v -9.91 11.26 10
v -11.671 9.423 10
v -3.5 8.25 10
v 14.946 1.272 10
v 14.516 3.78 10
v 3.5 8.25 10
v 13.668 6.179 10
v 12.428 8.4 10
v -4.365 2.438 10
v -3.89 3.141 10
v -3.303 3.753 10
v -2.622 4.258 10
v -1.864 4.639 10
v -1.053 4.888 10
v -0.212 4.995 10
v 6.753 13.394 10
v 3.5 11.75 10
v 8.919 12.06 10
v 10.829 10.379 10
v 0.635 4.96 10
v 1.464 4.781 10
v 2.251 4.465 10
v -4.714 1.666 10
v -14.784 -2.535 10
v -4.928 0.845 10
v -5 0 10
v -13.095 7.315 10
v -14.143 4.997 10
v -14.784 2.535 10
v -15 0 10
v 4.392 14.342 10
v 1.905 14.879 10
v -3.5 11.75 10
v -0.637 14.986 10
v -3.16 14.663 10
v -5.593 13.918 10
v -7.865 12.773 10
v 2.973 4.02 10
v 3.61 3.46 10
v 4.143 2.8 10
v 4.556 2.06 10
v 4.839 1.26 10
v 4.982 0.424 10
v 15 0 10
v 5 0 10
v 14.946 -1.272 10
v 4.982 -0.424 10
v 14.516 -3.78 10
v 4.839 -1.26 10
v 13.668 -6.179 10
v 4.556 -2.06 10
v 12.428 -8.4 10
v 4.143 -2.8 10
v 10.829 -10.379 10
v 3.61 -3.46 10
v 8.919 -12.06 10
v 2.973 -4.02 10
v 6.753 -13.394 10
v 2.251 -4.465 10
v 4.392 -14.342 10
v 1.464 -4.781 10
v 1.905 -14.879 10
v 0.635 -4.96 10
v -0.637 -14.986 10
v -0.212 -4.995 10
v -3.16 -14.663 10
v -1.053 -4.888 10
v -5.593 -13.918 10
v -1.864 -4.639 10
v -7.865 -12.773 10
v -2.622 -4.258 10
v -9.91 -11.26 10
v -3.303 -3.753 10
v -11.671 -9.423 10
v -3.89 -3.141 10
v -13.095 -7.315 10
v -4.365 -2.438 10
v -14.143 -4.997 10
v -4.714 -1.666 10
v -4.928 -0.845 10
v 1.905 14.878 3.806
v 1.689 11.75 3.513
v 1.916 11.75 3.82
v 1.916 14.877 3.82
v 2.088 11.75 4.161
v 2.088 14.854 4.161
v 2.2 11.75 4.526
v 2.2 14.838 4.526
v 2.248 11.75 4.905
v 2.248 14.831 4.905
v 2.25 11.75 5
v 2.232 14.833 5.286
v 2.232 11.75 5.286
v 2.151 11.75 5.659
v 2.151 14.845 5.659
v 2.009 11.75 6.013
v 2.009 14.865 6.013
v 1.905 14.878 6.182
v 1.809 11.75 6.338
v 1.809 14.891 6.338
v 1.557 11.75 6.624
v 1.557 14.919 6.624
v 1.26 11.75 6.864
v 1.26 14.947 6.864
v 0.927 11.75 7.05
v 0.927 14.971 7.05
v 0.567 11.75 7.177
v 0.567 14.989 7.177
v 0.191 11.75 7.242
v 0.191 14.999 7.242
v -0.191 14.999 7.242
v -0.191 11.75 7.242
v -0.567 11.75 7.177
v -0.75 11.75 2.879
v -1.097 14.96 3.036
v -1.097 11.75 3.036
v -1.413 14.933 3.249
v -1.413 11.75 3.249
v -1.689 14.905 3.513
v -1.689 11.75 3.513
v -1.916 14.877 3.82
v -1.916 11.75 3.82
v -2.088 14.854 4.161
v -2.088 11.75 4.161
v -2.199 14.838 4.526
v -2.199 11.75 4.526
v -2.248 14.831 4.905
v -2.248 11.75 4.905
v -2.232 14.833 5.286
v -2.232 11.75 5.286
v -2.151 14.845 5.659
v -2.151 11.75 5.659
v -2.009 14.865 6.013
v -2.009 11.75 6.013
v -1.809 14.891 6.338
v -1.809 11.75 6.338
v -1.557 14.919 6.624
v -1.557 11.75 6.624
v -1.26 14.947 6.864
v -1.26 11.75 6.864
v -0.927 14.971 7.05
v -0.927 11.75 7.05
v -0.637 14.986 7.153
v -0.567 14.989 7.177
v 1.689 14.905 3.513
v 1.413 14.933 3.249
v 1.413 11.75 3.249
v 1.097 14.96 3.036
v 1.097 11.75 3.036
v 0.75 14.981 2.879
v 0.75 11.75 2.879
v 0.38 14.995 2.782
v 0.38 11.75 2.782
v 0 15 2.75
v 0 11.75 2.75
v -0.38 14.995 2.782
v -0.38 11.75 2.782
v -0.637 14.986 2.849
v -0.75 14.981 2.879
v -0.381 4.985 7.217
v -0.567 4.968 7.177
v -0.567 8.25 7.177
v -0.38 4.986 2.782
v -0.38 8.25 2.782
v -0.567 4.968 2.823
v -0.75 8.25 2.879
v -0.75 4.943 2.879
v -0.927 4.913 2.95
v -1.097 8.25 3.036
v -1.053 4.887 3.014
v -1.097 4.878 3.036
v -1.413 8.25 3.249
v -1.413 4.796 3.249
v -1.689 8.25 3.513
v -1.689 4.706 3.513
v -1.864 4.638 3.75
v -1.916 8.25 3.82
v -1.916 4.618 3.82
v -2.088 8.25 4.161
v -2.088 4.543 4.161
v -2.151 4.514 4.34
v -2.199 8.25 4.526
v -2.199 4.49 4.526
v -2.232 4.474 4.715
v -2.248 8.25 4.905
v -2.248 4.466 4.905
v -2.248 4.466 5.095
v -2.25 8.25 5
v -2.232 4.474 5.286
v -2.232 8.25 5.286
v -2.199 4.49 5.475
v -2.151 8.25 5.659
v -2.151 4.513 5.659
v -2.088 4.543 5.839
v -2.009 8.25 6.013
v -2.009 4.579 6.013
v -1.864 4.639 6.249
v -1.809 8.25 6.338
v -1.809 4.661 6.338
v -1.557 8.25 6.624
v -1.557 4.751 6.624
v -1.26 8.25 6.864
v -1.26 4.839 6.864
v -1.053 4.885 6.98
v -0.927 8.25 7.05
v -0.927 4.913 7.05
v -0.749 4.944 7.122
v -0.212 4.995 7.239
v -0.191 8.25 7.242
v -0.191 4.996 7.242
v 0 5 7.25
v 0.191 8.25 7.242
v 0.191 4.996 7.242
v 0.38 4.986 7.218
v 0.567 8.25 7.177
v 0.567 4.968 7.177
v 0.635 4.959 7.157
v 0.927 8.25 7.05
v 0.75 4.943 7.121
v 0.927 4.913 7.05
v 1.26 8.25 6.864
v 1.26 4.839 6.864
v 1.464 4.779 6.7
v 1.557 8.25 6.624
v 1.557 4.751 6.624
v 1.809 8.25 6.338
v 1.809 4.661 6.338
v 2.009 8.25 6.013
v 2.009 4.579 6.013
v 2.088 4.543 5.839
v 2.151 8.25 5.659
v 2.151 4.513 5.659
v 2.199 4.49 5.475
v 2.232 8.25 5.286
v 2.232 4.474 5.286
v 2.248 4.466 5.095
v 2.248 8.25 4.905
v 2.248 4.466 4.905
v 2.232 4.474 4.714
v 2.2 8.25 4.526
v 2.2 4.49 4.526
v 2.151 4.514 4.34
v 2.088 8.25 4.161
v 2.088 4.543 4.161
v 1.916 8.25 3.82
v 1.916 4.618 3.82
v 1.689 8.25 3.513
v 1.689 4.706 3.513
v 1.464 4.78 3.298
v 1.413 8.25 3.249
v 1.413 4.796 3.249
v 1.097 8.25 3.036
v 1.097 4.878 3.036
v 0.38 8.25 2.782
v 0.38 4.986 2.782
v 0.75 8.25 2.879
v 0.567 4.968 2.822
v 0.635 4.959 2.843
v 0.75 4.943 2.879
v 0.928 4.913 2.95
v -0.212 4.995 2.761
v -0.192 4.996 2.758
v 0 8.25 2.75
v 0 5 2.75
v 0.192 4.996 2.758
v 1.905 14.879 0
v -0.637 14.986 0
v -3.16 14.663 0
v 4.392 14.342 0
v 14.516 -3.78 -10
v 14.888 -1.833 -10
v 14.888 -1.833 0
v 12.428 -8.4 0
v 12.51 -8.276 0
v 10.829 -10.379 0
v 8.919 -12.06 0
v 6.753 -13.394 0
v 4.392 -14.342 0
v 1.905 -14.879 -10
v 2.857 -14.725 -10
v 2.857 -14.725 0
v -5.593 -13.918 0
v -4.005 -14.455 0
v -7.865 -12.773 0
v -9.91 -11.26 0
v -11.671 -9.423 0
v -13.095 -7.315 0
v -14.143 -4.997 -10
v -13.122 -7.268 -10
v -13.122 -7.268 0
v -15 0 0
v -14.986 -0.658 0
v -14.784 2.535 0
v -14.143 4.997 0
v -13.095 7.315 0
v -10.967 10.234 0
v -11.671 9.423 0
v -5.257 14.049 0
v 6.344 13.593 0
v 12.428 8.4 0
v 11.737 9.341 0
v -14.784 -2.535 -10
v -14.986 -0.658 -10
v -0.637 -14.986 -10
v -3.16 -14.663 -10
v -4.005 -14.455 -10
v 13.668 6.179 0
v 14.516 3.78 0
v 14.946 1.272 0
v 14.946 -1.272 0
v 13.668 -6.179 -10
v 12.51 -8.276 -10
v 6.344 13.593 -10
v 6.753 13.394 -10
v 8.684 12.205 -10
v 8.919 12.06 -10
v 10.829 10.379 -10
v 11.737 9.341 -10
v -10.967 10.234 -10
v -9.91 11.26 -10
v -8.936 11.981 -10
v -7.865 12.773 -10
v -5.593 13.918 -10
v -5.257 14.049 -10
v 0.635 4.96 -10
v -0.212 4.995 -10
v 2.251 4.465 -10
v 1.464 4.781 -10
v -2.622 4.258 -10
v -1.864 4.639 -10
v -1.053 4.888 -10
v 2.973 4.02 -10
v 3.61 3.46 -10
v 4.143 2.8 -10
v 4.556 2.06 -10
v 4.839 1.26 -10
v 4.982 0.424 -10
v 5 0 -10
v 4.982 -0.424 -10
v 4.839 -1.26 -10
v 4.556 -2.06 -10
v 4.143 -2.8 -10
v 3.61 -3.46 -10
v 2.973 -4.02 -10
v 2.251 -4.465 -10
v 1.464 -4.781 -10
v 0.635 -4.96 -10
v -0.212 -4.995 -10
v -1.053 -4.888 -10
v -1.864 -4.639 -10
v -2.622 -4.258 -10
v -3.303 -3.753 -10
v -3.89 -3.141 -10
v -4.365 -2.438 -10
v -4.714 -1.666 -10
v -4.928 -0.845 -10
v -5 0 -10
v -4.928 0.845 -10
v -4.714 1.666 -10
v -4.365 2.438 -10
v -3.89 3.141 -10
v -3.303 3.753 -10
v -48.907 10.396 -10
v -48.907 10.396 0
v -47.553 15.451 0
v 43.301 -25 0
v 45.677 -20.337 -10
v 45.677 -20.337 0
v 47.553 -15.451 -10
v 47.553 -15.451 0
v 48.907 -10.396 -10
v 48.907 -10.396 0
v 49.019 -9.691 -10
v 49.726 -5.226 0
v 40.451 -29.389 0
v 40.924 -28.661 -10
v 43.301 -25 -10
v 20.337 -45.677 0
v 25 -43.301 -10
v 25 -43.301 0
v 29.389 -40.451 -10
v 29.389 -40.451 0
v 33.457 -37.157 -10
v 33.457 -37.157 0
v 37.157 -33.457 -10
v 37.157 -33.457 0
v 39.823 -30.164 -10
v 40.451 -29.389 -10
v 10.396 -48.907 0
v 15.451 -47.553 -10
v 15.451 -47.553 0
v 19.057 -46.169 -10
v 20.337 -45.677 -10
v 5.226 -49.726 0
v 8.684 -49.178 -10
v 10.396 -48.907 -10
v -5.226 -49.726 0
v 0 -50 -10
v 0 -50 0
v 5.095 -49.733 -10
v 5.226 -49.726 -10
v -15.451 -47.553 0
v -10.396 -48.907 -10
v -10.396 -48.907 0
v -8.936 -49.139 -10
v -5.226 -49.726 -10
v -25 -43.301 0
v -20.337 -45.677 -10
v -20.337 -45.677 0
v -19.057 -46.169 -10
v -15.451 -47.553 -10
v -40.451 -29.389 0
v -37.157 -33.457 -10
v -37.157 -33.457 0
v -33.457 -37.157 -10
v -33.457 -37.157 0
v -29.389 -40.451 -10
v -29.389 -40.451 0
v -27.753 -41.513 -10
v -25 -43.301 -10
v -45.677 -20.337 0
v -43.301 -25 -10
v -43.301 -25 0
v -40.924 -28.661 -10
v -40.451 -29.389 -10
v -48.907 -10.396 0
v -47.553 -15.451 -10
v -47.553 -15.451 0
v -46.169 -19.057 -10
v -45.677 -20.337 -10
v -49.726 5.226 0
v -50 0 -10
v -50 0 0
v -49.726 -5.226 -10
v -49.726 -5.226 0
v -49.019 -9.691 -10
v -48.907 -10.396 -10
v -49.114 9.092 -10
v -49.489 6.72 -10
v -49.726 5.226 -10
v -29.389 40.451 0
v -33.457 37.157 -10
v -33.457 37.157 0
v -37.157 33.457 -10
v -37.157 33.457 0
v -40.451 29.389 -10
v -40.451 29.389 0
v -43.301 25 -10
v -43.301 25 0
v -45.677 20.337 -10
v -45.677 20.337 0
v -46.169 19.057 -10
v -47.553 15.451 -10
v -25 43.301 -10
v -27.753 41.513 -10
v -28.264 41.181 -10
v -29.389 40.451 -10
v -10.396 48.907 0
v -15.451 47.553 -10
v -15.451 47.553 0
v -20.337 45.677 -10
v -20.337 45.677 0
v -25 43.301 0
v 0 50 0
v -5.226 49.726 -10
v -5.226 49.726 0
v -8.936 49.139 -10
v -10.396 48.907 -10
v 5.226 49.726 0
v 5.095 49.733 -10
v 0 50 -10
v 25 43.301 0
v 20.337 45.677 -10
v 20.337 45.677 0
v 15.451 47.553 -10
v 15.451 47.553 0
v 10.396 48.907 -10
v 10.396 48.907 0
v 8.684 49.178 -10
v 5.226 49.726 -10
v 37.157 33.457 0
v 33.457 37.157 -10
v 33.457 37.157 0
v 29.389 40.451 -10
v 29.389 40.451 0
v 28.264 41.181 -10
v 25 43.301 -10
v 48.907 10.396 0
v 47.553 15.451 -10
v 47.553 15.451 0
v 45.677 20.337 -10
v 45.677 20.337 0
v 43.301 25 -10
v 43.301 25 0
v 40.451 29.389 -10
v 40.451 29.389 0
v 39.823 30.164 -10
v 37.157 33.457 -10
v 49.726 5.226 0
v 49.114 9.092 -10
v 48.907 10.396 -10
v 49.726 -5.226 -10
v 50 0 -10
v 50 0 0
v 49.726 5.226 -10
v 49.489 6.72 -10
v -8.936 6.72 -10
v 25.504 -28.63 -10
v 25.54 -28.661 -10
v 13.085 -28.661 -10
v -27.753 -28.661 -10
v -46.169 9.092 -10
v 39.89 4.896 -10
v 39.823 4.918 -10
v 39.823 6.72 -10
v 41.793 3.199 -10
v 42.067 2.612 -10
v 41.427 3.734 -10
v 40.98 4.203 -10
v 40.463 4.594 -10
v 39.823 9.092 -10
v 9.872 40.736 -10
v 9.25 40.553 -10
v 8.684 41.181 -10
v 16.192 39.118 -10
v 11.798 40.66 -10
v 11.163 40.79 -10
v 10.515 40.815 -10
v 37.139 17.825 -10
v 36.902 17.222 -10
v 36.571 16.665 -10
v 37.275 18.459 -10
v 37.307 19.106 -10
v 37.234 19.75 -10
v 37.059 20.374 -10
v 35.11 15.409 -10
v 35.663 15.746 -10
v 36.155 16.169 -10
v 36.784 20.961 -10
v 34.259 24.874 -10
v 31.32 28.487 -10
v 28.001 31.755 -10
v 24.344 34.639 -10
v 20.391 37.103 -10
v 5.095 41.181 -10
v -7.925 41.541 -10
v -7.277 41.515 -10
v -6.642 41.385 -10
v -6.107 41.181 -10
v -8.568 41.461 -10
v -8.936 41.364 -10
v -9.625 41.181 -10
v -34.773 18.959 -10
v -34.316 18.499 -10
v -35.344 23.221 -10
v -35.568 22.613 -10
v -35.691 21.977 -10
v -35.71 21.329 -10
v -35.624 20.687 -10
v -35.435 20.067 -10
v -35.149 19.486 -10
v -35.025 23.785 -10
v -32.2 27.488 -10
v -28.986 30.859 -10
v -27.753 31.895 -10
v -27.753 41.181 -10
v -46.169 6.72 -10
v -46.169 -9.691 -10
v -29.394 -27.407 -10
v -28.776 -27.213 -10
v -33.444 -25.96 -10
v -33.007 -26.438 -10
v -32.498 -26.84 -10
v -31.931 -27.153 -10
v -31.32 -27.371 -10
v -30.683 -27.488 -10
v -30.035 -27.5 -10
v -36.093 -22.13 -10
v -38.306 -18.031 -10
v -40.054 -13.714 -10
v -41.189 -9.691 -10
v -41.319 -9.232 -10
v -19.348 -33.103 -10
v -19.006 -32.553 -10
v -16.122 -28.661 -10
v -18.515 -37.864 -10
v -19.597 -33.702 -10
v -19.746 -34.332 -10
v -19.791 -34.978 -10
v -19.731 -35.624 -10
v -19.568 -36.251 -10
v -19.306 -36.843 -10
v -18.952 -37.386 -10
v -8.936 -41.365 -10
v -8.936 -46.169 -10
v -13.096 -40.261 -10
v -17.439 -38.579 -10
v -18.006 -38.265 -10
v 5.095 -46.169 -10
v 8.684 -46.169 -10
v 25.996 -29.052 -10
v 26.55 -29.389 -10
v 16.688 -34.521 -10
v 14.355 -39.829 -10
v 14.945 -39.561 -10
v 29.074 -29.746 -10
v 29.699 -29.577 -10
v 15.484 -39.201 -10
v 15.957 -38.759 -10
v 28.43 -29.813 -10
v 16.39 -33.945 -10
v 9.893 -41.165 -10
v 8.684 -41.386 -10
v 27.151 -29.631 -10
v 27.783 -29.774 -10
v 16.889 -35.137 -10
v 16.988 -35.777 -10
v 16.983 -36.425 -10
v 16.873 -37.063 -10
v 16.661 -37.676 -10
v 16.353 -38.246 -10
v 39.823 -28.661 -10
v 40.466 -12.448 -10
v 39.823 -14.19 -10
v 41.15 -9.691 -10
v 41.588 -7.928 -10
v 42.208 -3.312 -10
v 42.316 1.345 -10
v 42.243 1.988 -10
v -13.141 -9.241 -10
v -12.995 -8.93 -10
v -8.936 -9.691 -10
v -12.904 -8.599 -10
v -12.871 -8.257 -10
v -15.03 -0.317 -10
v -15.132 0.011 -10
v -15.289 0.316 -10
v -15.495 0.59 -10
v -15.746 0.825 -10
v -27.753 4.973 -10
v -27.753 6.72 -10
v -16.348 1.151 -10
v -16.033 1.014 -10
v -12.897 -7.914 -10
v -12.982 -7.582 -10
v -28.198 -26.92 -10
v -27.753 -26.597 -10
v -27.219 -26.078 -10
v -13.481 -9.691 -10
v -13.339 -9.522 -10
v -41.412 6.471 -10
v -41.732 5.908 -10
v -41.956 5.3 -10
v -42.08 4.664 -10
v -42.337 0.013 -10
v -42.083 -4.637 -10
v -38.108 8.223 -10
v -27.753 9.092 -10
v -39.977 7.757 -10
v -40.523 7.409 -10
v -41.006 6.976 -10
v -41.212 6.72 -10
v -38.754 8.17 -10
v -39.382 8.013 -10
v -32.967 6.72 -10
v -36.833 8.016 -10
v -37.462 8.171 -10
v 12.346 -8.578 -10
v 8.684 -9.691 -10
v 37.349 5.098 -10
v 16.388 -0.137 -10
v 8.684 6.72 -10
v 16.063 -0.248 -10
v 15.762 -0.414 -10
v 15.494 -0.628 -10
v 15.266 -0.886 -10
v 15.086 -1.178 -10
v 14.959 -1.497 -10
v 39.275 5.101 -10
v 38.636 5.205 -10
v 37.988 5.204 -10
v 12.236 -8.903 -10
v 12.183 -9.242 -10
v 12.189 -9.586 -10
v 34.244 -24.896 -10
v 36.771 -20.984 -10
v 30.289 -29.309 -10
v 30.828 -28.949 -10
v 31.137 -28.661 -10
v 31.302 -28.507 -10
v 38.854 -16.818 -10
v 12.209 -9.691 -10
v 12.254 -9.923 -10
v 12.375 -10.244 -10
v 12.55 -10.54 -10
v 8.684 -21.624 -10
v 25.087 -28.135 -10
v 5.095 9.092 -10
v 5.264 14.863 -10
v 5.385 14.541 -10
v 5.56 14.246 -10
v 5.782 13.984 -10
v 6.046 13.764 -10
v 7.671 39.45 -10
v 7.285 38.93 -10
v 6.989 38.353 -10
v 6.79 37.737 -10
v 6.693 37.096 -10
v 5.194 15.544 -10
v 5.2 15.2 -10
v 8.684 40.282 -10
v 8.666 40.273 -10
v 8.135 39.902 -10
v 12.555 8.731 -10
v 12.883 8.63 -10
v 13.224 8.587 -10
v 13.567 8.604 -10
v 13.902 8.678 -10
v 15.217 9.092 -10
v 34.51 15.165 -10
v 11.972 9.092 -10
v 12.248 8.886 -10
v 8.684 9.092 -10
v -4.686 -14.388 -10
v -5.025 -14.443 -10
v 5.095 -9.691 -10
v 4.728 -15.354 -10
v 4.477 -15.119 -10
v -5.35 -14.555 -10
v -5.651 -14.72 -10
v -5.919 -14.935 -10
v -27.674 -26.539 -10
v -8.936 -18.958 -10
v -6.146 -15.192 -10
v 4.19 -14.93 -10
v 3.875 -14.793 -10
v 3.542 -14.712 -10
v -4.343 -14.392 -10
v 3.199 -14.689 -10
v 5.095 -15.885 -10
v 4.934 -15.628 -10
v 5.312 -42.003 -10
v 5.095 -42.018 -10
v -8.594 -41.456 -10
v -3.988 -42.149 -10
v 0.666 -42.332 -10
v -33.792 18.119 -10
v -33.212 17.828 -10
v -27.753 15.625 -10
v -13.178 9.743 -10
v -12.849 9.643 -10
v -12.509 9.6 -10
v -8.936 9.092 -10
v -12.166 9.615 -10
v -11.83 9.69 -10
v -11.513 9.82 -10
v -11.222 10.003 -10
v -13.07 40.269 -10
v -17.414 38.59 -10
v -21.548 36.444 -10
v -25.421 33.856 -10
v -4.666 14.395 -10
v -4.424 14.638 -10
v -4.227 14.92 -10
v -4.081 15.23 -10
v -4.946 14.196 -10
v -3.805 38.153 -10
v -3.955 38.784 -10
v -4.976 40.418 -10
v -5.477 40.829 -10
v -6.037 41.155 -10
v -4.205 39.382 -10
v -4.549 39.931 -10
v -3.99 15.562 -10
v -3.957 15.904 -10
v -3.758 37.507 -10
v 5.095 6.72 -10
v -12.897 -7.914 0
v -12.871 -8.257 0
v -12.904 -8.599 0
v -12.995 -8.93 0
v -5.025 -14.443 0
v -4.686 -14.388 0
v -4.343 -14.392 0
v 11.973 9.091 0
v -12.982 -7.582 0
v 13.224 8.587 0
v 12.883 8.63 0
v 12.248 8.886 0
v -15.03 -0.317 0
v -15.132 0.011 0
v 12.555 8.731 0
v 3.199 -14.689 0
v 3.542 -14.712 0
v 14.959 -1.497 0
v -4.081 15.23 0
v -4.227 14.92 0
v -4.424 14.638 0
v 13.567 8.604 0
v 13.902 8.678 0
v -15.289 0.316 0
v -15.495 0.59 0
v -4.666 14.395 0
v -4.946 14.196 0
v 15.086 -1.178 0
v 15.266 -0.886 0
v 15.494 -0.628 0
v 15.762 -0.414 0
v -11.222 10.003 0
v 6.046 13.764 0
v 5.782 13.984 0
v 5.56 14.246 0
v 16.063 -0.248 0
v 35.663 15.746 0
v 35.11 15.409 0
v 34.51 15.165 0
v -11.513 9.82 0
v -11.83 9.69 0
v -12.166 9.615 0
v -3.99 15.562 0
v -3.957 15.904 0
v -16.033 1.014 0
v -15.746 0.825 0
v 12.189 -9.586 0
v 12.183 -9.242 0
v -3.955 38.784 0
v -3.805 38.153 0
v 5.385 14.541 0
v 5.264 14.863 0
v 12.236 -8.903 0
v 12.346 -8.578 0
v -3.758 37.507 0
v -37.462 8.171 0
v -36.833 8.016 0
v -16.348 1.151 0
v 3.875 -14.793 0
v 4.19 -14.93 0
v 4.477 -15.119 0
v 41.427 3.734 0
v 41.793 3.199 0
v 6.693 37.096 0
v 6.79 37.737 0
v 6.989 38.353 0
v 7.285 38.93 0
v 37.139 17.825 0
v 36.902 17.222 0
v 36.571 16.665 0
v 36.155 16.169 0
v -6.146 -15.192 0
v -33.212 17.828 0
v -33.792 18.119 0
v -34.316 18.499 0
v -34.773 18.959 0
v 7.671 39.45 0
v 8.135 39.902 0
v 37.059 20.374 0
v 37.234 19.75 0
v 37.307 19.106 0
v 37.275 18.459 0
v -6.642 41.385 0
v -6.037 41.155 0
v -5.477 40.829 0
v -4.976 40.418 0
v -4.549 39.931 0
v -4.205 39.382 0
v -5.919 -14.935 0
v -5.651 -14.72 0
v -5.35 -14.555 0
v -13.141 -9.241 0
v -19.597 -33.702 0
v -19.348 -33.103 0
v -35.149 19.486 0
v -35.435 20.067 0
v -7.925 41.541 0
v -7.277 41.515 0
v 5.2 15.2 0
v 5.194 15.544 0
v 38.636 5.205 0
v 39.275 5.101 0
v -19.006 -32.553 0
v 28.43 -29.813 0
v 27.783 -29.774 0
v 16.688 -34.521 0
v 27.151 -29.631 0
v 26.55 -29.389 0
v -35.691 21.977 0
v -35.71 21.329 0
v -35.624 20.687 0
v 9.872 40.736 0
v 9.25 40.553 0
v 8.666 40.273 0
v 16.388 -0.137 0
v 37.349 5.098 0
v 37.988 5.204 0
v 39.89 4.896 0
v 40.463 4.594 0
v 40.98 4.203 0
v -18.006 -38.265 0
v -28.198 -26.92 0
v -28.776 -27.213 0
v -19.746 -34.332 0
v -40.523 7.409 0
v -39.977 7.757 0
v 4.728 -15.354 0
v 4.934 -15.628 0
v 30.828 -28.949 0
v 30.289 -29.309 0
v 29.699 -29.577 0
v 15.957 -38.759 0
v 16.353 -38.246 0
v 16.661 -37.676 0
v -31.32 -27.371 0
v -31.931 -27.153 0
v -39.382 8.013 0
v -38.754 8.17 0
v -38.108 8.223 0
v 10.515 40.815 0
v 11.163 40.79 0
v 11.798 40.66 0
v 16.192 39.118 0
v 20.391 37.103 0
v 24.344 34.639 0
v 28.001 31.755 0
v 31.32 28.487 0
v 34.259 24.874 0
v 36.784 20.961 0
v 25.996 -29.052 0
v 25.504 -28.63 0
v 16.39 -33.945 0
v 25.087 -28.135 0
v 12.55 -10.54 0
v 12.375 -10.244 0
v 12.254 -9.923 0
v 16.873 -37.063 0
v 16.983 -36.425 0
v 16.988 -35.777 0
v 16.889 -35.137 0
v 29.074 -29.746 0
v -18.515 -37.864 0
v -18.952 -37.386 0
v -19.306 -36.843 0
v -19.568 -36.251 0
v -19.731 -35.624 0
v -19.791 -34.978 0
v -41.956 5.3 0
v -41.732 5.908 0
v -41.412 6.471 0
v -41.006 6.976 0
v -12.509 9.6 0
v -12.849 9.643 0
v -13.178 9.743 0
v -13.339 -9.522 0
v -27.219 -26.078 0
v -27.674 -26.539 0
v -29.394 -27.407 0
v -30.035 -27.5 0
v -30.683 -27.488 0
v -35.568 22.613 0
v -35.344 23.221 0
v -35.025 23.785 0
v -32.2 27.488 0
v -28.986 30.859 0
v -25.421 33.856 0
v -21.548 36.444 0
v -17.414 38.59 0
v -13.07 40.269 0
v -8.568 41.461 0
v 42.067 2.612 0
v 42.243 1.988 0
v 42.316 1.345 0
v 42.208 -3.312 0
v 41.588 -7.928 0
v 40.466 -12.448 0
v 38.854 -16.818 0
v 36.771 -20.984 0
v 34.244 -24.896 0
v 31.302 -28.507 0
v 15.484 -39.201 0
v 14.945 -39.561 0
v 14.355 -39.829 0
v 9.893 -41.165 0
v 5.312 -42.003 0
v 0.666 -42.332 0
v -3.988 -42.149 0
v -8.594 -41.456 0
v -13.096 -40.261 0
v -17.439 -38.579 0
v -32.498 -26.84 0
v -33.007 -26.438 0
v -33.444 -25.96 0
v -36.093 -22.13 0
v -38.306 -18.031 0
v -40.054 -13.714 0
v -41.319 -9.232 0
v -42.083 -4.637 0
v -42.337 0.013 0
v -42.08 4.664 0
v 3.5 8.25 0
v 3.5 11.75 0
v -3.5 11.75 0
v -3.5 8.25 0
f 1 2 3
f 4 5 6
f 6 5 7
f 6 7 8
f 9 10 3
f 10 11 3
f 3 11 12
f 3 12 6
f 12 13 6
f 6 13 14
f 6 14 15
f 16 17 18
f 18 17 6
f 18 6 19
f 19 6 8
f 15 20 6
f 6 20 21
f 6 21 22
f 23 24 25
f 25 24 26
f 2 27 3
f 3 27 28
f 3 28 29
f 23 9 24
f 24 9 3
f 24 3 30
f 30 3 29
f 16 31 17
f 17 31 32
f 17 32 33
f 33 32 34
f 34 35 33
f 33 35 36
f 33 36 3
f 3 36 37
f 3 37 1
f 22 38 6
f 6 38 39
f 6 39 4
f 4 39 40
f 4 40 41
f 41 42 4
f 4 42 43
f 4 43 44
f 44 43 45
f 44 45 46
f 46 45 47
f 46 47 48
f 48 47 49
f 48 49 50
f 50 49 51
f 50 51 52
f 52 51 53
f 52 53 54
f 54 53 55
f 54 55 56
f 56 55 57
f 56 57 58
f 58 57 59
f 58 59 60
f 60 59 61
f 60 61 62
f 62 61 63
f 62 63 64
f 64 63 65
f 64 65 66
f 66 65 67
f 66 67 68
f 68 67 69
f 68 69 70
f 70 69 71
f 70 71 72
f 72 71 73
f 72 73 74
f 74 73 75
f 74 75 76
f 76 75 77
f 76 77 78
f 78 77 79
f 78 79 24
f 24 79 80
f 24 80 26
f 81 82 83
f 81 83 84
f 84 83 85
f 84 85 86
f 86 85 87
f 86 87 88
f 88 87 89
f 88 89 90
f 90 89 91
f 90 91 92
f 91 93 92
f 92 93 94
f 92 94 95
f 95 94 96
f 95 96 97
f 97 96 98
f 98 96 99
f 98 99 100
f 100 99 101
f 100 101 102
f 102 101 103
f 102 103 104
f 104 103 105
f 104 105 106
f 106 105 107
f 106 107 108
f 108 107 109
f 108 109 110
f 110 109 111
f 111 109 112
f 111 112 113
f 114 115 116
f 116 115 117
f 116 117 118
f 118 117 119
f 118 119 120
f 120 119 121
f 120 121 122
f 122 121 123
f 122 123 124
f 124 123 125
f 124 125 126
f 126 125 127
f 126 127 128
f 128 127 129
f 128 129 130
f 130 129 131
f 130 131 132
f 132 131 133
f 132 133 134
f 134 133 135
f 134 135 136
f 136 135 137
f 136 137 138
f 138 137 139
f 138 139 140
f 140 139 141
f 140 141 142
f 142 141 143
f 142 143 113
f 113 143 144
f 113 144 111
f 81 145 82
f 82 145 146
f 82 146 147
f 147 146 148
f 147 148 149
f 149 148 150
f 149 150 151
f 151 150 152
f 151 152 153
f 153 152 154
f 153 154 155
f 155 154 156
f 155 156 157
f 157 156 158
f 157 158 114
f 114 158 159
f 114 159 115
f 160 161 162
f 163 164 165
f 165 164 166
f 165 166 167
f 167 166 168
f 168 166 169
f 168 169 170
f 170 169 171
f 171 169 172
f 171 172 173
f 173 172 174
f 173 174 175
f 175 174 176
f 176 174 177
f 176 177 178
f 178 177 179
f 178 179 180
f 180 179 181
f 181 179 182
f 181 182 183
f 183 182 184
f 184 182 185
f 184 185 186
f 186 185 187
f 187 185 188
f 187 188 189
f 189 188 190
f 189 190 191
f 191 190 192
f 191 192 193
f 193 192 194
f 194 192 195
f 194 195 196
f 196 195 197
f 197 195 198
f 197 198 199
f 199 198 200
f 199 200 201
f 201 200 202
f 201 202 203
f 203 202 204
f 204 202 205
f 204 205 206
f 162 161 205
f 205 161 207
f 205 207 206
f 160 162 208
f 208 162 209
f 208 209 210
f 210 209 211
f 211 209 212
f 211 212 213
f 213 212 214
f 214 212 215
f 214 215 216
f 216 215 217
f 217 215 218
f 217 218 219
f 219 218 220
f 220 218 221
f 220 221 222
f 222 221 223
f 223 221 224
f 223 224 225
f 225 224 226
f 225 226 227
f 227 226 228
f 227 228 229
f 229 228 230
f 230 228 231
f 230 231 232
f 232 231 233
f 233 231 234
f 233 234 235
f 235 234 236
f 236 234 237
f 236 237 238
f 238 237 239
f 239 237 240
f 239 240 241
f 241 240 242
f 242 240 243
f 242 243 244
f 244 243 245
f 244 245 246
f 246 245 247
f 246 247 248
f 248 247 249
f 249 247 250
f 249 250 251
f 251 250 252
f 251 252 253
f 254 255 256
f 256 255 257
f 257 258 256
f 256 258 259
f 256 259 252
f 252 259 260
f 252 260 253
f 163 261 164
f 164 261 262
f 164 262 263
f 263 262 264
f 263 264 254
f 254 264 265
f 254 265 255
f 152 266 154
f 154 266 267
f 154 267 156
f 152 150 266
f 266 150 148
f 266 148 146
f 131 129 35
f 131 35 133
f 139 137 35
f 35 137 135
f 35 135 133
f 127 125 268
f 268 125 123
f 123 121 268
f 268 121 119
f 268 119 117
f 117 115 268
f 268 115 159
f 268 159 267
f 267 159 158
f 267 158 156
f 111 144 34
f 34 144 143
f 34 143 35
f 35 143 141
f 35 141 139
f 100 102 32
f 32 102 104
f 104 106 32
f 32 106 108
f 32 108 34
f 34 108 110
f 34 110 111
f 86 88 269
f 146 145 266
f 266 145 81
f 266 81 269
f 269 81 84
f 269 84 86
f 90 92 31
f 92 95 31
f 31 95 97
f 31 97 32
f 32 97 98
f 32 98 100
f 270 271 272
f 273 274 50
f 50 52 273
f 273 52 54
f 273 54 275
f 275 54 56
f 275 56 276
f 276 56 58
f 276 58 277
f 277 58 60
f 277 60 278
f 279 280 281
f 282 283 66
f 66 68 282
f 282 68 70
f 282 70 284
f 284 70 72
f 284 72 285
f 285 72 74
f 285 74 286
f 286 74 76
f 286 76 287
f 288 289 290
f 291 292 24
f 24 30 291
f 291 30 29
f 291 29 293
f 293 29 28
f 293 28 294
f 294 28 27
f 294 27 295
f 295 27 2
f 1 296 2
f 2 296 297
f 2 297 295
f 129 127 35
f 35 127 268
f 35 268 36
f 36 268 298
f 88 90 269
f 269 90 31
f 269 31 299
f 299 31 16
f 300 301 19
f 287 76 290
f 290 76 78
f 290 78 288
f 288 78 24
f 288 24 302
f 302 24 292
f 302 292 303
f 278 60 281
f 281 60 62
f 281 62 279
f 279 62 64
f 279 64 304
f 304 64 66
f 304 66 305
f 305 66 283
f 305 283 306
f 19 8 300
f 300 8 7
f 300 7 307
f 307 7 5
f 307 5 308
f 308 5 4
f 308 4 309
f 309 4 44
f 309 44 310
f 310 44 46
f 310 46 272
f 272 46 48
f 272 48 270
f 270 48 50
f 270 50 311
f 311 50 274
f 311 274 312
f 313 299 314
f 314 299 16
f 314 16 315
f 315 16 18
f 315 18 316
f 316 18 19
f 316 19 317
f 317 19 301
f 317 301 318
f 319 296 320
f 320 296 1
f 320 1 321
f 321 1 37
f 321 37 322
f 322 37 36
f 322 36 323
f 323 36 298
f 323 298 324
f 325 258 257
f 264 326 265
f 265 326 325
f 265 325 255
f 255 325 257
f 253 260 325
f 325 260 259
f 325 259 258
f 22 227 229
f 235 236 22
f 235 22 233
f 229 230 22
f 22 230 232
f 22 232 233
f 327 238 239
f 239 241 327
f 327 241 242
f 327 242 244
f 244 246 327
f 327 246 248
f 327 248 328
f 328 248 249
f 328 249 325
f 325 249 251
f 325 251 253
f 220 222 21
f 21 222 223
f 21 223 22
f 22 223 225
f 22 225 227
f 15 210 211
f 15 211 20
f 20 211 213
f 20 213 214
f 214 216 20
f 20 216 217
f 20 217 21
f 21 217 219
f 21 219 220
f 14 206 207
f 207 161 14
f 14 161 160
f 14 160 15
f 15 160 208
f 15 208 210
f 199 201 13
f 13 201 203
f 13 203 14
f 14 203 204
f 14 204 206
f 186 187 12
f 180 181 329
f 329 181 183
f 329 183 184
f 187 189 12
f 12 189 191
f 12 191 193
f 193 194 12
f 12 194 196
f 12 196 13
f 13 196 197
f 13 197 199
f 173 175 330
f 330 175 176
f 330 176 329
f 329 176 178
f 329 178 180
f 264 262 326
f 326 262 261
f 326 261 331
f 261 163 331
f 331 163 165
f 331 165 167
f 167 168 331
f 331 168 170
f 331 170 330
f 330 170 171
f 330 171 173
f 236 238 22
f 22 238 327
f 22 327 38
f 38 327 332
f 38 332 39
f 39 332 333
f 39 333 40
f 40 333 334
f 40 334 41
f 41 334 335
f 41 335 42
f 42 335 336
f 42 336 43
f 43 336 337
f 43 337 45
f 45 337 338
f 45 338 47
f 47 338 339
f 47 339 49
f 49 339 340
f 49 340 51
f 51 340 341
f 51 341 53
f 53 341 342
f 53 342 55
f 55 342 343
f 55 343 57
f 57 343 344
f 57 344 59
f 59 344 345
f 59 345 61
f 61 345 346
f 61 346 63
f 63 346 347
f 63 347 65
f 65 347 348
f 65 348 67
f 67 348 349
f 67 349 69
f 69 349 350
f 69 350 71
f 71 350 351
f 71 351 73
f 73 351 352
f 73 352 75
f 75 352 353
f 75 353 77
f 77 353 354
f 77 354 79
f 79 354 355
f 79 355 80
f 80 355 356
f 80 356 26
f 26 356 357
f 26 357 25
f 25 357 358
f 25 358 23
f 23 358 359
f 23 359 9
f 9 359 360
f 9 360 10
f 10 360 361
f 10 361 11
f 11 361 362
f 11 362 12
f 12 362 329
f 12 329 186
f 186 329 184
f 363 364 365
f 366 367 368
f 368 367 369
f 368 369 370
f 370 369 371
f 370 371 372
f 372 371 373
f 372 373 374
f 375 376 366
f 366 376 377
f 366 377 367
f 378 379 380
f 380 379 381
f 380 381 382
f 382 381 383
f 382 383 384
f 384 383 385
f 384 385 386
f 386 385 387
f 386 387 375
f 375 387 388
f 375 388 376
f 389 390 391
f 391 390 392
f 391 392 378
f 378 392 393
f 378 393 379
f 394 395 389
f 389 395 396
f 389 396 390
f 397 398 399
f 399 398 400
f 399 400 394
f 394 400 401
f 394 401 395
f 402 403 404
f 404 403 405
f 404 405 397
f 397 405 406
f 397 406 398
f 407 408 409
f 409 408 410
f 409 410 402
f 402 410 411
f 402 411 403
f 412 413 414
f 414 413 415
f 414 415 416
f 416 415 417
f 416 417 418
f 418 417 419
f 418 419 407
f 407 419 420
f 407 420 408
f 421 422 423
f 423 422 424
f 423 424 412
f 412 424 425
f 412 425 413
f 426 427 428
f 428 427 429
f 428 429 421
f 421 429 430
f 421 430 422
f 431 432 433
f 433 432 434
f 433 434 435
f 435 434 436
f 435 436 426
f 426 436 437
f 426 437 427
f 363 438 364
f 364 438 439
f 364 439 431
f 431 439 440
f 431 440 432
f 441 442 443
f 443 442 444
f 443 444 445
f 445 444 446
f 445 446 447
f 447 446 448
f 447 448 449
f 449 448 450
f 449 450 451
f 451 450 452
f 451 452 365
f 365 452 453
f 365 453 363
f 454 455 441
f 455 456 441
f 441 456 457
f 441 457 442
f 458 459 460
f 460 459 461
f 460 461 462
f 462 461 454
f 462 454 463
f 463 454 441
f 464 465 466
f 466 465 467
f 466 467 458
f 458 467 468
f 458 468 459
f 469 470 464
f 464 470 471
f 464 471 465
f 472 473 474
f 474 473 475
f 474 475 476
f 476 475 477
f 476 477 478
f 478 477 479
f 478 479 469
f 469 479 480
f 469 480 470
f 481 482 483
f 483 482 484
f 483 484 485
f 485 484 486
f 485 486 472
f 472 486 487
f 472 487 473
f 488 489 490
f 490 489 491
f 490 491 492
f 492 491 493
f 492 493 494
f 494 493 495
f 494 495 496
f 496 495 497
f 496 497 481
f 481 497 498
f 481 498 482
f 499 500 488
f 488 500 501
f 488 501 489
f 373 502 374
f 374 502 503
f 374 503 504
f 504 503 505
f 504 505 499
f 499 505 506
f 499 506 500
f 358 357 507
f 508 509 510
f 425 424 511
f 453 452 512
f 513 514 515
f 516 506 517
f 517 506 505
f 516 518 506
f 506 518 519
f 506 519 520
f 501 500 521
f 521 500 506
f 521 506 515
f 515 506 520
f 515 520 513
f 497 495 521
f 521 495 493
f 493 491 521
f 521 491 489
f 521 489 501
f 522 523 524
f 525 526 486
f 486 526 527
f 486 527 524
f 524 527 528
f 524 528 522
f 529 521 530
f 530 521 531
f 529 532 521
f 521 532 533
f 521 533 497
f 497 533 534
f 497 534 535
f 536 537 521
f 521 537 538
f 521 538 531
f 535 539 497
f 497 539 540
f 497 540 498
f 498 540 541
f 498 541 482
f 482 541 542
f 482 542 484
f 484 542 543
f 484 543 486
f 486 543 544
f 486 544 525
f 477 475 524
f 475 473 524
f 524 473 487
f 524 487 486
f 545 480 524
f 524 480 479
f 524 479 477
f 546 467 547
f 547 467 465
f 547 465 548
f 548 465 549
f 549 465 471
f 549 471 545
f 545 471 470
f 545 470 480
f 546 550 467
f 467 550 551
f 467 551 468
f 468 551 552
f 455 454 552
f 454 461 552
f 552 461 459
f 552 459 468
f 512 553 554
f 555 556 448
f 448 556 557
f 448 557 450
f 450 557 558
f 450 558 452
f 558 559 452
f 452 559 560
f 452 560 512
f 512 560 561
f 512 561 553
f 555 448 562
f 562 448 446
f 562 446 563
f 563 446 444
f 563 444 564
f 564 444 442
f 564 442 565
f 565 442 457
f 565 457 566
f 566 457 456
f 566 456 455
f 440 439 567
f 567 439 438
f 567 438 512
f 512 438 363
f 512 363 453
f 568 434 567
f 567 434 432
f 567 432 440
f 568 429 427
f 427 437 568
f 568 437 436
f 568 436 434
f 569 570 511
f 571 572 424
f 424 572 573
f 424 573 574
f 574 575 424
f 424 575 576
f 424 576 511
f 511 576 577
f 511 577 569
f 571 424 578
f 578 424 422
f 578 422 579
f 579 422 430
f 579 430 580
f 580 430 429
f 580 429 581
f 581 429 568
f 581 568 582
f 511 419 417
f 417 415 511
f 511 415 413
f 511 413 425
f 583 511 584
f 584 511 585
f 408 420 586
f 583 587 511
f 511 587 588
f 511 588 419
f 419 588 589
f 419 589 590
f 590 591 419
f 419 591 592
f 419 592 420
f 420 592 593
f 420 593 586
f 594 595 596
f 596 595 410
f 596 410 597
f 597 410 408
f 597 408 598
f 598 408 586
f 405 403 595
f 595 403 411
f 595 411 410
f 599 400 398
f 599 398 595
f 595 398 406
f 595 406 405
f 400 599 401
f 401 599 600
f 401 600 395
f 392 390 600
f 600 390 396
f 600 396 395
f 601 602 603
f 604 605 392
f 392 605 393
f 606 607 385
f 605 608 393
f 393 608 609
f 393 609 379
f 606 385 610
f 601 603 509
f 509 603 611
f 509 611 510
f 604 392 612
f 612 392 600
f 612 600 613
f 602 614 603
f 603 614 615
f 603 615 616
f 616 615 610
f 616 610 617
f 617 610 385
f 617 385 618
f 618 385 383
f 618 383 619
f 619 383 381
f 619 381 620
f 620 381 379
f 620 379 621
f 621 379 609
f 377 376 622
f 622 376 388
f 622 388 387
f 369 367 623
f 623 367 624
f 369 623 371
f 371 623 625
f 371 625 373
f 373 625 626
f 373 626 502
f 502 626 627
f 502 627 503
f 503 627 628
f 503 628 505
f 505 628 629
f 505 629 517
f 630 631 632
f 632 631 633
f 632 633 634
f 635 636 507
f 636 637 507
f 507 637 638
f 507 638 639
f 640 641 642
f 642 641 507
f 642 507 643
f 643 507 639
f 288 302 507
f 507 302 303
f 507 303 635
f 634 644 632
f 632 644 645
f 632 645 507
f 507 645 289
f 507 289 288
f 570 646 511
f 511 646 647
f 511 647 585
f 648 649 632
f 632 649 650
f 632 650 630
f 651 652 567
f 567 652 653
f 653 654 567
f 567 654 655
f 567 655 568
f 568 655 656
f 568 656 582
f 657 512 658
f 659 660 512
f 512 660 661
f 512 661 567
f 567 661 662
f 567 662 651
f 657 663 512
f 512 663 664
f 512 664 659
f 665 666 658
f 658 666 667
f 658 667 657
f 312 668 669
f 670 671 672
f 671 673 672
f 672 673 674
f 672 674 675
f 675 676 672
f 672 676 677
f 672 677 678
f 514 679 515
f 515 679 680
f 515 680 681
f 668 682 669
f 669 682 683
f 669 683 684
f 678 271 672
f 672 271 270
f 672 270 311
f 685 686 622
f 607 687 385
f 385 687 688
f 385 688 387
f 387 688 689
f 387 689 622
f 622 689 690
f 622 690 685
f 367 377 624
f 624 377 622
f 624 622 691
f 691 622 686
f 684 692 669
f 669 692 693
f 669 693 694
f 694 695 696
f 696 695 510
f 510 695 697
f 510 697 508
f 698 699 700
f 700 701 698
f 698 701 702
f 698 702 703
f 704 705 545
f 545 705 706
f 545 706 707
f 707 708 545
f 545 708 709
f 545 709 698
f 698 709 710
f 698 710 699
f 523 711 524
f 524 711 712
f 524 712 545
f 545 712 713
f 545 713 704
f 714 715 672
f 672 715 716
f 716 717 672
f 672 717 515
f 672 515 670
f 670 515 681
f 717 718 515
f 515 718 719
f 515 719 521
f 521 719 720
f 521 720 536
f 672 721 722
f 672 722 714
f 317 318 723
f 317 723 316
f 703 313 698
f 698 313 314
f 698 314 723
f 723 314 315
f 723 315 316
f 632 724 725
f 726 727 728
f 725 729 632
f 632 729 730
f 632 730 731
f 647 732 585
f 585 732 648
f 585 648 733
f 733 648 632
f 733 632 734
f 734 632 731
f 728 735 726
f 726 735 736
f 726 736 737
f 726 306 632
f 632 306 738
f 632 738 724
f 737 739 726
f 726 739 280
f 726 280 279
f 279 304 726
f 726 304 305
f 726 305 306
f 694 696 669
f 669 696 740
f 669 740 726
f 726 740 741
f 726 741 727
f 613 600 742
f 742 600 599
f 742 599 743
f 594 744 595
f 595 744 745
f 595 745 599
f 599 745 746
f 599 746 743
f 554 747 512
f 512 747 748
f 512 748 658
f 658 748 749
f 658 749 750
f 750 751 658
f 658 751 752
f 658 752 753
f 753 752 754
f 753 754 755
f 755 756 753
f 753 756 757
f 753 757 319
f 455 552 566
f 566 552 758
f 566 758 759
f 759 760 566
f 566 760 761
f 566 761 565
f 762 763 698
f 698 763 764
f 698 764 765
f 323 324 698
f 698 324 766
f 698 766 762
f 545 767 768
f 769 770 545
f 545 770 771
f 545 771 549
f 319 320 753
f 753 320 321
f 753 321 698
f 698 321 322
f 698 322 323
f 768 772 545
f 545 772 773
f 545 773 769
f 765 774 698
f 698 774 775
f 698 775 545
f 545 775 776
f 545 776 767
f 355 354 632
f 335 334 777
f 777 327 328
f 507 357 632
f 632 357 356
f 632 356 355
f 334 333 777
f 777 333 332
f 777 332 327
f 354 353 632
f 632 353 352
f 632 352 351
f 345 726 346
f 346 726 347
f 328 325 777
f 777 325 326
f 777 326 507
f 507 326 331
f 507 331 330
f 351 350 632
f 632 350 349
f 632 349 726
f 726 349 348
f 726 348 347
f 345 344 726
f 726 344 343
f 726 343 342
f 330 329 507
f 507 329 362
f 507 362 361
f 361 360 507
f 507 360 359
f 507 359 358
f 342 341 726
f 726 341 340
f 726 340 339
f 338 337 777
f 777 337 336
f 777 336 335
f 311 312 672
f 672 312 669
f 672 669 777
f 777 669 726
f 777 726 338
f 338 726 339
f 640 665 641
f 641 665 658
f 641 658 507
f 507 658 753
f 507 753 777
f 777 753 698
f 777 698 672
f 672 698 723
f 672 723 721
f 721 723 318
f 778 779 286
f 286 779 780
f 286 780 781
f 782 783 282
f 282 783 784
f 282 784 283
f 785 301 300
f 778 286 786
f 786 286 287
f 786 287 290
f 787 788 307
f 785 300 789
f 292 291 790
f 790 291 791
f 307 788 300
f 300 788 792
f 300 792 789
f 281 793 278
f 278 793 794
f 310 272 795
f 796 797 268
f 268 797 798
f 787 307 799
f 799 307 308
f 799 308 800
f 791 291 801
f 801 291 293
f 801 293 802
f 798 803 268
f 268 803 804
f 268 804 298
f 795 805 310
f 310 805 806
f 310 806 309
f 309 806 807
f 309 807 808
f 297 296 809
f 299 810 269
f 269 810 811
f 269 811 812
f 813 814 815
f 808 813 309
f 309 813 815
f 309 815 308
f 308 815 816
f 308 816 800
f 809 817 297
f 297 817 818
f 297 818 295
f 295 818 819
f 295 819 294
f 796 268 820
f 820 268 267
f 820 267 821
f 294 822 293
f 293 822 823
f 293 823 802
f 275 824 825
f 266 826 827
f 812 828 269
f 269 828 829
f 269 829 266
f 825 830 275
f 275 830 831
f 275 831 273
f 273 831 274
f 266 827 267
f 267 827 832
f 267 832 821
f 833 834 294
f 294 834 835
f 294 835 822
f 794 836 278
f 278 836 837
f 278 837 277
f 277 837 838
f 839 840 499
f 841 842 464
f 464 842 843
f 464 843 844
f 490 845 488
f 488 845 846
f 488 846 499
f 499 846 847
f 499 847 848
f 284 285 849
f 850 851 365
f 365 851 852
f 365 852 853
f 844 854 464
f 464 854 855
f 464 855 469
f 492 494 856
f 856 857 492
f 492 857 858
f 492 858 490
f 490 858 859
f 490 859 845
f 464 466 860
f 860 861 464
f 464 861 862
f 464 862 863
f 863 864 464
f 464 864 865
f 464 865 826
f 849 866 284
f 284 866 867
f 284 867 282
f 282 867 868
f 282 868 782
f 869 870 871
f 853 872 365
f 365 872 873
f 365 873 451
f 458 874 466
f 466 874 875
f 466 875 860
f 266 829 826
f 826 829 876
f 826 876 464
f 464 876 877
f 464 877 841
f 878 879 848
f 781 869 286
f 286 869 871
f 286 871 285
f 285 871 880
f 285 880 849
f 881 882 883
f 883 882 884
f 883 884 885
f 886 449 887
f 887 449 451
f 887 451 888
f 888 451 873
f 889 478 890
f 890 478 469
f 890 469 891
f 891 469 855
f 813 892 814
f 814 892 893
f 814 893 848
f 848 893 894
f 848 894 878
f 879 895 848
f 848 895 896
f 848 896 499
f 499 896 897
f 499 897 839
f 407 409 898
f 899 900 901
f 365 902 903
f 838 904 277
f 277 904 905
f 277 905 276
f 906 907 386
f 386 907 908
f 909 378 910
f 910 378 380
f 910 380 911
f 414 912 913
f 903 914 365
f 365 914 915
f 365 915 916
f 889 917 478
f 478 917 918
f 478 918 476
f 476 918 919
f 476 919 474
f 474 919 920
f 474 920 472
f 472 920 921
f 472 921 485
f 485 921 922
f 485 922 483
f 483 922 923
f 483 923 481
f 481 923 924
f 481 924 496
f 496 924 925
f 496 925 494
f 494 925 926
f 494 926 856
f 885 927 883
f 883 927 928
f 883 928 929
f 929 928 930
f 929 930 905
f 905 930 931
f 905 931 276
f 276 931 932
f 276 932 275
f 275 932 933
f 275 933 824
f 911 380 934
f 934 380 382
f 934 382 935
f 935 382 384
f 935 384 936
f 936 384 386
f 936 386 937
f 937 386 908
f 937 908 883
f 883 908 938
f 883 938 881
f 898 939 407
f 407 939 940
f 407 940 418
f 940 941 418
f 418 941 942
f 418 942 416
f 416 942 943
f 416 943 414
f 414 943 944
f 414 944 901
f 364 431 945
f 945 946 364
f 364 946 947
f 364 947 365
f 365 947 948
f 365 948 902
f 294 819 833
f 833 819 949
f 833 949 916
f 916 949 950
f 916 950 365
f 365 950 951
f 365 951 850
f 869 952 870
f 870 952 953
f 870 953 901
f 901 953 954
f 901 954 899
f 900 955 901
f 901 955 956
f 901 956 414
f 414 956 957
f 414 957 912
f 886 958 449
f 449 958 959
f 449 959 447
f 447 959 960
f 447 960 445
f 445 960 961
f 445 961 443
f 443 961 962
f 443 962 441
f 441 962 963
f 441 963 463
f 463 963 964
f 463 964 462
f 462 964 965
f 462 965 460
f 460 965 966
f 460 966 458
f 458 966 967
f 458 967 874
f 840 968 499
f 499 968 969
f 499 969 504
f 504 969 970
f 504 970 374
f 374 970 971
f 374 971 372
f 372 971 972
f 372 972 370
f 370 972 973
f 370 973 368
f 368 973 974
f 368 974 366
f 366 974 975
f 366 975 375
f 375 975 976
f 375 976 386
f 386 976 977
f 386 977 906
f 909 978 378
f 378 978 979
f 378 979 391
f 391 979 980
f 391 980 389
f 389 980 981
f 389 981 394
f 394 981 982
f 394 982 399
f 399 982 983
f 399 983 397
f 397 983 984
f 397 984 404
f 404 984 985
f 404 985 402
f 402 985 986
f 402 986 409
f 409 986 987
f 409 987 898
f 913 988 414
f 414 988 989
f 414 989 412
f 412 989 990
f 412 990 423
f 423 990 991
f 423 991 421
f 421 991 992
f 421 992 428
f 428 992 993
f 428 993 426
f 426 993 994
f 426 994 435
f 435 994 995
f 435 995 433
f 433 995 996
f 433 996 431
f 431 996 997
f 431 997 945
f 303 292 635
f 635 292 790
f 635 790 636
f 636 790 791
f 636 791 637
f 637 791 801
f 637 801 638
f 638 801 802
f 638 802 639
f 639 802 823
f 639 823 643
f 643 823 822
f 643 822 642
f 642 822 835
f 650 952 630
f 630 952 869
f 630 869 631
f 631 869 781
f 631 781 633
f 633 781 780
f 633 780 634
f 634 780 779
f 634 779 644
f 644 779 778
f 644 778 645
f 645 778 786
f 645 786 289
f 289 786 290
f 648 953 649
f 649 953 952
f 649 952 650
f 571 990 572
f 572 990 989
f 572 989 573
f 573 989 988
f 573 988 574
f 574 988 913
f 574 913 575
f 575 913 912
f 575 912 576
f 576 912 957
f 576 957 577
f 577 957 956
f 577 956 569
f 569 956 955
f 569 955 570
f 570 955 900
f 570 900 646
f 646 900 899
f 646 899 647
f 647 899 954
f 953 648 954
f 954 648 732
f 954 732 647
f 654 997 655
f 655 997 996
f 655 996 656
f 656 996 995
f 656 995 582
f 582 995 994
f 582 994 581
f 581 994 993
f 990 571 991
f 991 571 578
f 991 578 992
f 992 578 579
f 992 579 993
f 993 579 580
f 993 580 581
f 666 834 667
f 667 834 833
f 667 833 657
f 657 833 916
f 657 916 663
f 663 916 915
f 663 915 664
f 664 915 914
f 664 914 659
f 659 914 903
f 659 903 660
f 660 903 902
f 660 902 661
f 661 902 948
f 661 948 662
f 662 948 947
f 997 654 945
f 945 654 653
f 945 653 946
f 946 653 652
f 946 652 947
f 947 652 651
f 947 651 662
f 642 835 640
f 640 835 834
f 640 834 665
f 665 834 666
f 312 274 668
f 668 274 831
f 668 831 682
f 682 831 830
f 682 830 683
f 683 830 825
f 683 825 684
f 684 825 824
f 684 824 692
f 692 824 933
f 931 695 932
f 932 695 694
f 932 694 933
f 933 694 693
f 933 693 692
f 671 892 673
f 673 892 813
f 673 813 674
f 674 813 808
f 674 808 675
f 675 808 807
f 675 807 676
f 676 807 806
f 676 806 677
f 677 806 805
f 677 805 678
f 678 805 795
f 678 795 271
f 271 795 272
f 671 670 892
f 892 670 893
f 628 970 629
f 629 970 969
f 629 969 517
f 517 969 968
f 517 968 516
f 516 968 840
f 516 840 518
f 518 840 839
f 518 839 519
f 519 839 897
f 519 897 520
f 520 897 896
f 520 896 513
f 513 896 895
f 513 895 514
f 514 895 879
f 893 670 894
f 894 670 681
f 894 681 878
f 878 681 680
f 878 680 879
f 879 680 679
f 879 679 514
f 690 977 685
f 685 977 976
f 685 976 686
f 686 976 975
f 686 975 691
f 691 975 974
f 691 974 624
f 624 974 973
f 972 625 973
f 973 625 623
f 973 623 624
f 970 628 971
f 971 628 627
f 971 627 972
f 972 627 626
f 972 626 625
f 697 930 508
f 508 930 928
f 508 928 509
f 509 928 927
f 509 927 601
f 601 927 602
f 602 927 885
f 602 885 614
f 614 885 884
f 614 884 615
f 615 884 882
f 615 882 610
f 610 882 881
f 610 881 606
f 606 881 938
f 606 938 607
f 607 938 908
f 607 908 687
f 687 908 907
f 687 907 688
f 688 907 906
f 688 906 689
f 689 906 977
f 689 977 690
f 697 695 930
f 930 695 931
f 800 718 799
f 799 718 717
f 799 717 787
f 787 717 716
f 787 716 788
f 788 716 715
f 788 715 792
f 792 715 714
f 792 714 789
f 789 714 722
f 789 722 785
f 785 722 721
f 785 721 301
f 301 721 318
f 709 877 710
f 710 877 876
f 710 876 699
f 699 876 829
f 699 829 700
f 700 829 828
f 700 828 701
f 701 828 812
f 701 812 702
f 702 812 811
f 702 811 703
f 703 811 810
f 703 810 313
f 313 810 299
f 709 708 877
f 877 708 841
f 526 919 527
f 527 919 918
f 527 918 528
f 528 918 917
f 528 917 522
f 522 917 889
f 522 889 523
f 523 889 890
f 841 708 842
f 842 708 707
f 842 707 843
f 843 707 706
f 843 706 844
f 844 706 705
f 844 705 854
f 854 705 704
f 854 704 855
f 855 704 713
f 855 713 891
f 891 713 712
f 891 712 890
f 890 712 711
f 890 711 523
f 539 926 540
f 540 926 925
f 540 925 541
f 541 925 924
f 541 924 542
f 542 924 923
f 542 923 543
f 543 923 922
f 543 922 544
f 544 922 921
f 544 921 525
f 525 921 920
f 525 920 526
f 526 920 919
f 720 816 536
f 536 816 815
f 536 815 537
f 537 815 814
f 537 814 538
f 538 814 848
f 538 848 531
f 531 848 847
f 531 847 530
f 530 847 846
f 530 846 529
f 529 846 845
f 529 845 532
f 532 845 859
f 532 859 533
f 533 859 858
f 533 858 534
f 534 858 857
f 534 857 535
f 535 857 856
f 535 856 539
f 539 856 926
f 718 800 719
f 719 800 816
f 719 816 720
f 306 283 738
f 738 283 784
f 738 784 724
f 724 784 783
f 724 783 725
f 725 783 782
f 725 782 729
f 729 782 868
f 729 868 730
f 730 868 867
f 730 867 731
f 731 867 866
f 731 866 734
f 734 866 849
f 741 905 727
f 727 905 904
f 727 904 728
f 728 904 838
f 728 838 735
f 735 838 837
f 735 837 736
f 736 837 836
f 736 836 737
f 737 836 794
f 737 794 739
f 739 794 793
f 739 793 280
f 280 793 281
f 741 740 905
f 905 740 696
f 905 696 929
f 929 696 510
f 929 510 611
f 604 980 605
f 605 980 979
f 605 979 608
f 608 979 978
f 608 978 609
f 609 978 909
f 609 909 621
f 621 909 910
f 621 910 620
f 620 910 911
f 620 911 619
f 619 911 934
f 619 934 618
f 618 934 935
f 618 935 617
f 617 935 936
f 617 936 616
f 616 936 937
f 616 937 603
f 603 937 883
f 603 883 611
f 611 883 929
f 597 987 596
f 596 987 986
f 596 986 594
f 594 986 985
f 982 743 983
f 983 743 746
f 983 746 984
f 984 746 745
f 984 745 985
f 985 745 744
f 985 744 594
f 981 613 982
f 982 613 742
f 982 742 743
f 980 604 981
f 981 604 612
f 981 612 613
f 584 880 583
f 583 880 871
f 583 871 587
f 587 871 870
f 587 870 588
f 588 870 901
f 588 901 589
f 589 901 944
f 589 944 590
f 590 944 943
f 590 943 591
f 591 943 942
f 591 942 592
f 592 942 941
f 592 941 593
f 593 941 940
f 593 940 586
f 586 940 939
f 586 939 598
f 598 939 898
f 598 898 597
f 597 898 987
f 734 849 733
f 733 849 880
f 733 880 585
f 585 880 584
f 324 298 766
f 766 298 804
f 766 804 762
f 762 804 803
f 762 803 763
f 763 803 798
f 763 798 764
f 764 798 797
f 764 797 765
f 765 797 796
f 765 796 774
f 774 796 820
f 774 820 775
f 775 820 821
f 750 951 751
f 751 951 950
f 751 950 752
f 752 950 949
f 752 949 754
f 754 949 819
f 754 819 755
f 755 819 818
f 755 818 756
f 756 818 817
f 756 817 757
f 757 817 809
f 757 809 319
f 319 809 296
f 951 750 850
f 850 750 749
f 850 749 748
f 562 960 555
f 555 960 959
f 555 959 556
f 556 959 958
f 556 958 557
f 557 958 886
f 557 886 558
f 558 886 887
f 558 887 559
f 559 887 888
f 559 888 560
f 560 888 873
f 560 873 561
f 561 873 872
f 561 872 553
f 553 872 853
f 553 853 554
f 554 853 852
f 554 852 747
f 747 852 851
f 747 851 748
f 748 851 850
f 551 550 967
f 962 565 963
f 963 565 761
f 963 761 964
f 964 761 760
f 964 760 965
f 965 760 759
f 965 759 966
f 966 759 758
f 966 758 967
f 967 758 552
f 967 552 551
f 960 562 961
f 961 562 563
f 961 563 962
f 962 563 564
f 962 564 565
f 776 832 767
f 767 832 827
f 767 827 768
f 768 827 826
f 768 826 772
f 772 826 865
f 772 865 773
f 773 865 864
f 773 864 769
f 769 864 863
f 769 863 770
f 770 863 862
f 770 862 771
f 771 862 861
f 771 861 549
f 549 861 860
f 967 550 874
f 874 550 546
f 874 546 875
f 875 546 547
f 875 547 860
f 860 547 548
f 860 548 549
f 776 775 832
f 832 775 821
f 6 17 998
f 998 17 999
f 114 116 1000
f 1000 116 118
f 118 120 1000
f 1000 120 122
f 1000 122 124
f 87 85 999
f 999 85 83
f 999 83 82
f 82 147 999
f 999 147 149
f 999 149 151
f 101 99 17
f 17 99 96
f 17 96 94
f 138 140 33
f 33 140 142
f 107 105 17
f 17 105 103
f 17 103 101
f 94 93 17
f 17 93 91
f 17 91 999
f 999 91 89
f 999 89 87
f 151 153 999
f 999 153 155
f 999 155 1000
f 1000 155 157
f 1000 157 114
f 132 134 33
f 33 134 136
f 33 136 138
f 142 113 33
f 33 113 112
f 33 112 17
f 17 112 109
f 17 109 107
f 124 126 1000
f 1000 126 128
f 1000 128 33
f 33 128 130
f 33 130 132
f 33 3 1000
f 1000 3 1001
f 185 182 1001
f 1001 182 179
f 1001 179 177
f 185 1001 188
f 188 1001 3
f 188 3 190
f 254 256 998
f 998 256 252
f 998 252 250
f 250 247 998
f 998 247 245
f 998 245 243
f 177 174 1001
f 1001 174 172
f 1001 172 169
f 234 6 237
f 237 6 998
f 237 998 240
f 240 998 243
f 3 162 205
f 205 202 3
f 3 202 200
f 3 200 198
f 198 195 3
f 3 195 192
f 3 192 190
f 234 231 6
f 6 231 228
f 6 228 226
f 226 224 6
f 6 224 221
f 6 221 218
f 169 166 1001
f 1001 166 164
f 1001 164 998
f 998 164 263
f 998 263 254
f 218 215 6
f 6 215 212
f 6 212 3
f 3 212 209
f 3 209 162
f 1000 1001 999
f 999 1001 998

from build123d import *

# Parameters (mm, degrees)
ESQUISSE1_R              = 15
ESQUISSE1_R_2            = 5
BOSS_EXTRU_4_DEPTH       = 10
ESQUISSE3_R              = 50
BOSS_EXTRU_5_DEPTH       = 10
ESQUISSE14_R             = 5
ENL_V_MAT_EXTRU_1_DEPTH  = 10
ENL_V_MAT_EXTRU_7_DEPTH  = 10
ENL_V_MAT_EXTRU_8_REACH  = 52
ESQUISSE20_R             = 2.25
ESQUISSE25_W             = 7
ESQUISSE25_H             = 3.5
ENL_V_MAT_EXTRU_10_DEPTH = 10


with BuildPart() as part:
    # Esquisse1 → Boss.-Extru.4 (new body)
    with BuildSketch(Plane.XY):
        Circle(ESQUISSE1_R)
        Circle(ESQUISSE1_R_2, mode=Mode.SUBTRACT)
    extrude(amount=BOSS_EXTRU_4_DEPTH)

    # Esquisse3 → Boss.-Extru.5 (add)
    with BuildSketch(Plane.XY):
        Circle(ESQUISSE3_R)
    extrude(amount=-BOSS_EXTRU_5_DEPTH)

    # Esquisse14 → Enlèv. mat.-Extru.1 (cut)
    with BuildSketch(Plane.XY):
        Circle(ESQUISSE14_R)
    extrude(amount=-ENL_V_MAT_EXTRU_1_DEPTH, mode=Mode.SUBTRACT)

    # Esquisse19 → Enlèv. mat.-Extru.7 (cut)
    with BuildSketch(Plane.XY):
        with BuildLine():
            Line((-13.338573188, -9.521928054), (-27.218975217, -26.077663465))
            ThreePointArc((-27.218975217, -26.077663465), (-30.359478039, -27.507055347), (-33.443966468, -25.96049456))
            ThreePointArc((-33.443966468, -25.96049456), (-40.74820108, -11.49044297), (-42.079621744, 4.663861575))
            ThreePointArc((-42.079621744, 4.663861575), (-40.257507229, 7.594018196), (-36.832899826, 8.015898828))
            Line((-36.832899826, 8.015898828), (-16.348106085, 1.150685003))
            ThreePointArc((-16.348106085, 1.150685003), (-15.386221176, 0.457781948), (-14.985564031, -0.65792907))
            ThreePointArc((-14.985564031, -0.65792907), (-14.436989432, -4.07103625), (-13.121635222, -7.267921925))
            ThreePointArc((-13.121635222, -7.267921925), (-12.88038592, -8.428583804), (-13.338573188, -9.521928054))
        make_face()
        with BuildLine():
            Line((-13.177737519, 9.74329936), (-33.212457679, 17.828342562))
            ThreePointArc((-33.212457679, 17.828342562), (-35.542358886, 20.373431853), (-35.024651516, 23.784868238))
            ThreePointArc((-35.024651516, 23.784868238), (-23.519947285, 35.203100014), (-8.567722294, 41.461310949))
            ThreePointArc((-8.567722294, 41.461310949), (-5.217913395, 40.633845258), (-3.758419184, 37.507218357))
            Line((-3.758419184, 37.507218357), (-3.957476136, 15.903554042))
            ThreePointArc((-3.957476136, 15.903554042), (-4.319227318, 14.774628312), (-5.256521685, 14.048807059))
            ThreePointArc((-5.256521685, 14.048807059), (-8.333060636, 12.472373489), (-10.967012784, 10.233505294))
            ThreePointArc((-10.967012784, 10.233505294), (-11.996317693, 9.645399328), (-13.177737519, 9.74329936))
        make_face()
        with BuildLine():
            Line((5.194283506, 15.543618221), (6.692547521, 37.096185131))
            ThreePointArc((6.692547521, 37.096185131), (8.393092207, 40.098528699), (11.797541387, 40.660351549))
            ThreePointArc((11.797541387, 40.660351549), (26.212074244, 33.247155288), (36.78447816, 20.96063781))
            ThreePointArc((36.78447816, 20.96063781), (37.032659401, 17.519079267), (34.510069026, 15.16483694))
            Line((34.510069026, 15.16483694), (13.902251323, 8.678251937))
            ThreePointArc((13.902251323, 8.678251937), (12.716791888, 8.67344052), (11.736854967, 9.340569333))
            ThreePointArc((11.736854967, 9.340569333), (9.286874729, 11.779386986), (6.343648566, 13.59257602))
            ThreePointArc((6.343648566, 13.59257602), (5.466253846, 14.389768423), (5.194283506, 15.543618221))
        make_face()
        with BuildLine():
            Line((-19.005564812, -32.553120431), (-6.146209076, -15.1923916))
            ThreePointArc((-6.146209076, -15.1923916), (-5.189980327, -14.491703509), (-4.005066227, -14.455429586))
            ThreePointArc((-4.005066227, -14.455429586), (-0.589489528, -14.988412261), (2.857396229, -14.725328071))
            ThreePointArc((2.857396229, -14.725328071), (4.035801406, -14.854550596), (4.934045928, -15.628174536))
            Line((4.934045928, -15.628174536), (16.390205856, -33.945224931))
            ThreePointArc((16.390205856, -33.945224931), (16.779169577, -37.373726988), (14.35514352, -39.829336241))
            ThreePointArc((14.35514352, -39.829336241), (-1.663825962, -42.304584315), (-17.438914178, -38.578885977))
            ThreePointArc((-17.438914178, -38.578885977), (-19.662594375, -35.940483902), (-19.005564812, -32.553120431))
        make_face()
        with BuildLine():
            Line((16.387981273, -0.136814991), (37.348679518, 5.098360702))
            ThreePointArc((37.348679518, 5.098360702), (40.729575141, 4.408821782), (42.315933076, 1.344611014))
            ThreePointArc((42.315933076, 1.344611014), (39.719900084, -14.655228017), (31.301780055, -28.506924356))
            ThreePointArc((31.301780055, -28.506924356), (28.105355598, -29.80645882), (25.086814797, -28.134833694))
            Line((25.086814797, -28.134833694), (12.549539974, -10.540099382))
            ThreePointArc((12.549539974, -10.540099382), (12.178636933, -9.414147271), (12.510296976, -8.276017736))
            ThreePointArc((12.510296976, -8.276017736), (14.072664867, -5.192311964), (14.887603211, -1.832831318))
            ThreePointArc((14.887603211, -1.832831318), (15.374648361, -0.752033352), (16.387981273, -0.136814991))
        make_face()
    extrude(amount=-ENL_V_MAT_EXTRU_7_DEPTH, mode=Mode.SUBTRACT)

    # Esquisse20 → Enlèv. mat.-Extru.8 (cut, up to next)
    with BuildSketch(Plane(origin=(0, 0, 0), x_dir=(1, 0, 0), z_dir=(0, 1, 0)), mode=Mode.PRIVATE) as enl_v_mat_extru_8_sk1:
        with Locations((0, -5)):
            Circle(ESQUISSE20_R)
    enl_v_mat_extru_8_tool1 = extrude(enl_v_mat_extru_8_sk1.sketch, amount=ENL_V_MAT_EXTRU_8_REACH, mode=Mode.PRIVATE) & part.part
    add(enl_v_mat_extru_8_tool1.solids().sort_by_distance((0, 0, 5))[0], mode=Mode.SUBTRACT)

    # Esquisse25 → Enlèv. mat.-Extru.10 (cut)
    with BuildSketch(Plane.XY):
        with Locations((0, 10)):
            Rectangle(ESQUISSE25_W, ESQUISSE25_H)
    extrude(amount=ENL_V_MAT_EXTRU_10_DEPTH, mode=Mode.SUBTRACT)


solid = part.part
